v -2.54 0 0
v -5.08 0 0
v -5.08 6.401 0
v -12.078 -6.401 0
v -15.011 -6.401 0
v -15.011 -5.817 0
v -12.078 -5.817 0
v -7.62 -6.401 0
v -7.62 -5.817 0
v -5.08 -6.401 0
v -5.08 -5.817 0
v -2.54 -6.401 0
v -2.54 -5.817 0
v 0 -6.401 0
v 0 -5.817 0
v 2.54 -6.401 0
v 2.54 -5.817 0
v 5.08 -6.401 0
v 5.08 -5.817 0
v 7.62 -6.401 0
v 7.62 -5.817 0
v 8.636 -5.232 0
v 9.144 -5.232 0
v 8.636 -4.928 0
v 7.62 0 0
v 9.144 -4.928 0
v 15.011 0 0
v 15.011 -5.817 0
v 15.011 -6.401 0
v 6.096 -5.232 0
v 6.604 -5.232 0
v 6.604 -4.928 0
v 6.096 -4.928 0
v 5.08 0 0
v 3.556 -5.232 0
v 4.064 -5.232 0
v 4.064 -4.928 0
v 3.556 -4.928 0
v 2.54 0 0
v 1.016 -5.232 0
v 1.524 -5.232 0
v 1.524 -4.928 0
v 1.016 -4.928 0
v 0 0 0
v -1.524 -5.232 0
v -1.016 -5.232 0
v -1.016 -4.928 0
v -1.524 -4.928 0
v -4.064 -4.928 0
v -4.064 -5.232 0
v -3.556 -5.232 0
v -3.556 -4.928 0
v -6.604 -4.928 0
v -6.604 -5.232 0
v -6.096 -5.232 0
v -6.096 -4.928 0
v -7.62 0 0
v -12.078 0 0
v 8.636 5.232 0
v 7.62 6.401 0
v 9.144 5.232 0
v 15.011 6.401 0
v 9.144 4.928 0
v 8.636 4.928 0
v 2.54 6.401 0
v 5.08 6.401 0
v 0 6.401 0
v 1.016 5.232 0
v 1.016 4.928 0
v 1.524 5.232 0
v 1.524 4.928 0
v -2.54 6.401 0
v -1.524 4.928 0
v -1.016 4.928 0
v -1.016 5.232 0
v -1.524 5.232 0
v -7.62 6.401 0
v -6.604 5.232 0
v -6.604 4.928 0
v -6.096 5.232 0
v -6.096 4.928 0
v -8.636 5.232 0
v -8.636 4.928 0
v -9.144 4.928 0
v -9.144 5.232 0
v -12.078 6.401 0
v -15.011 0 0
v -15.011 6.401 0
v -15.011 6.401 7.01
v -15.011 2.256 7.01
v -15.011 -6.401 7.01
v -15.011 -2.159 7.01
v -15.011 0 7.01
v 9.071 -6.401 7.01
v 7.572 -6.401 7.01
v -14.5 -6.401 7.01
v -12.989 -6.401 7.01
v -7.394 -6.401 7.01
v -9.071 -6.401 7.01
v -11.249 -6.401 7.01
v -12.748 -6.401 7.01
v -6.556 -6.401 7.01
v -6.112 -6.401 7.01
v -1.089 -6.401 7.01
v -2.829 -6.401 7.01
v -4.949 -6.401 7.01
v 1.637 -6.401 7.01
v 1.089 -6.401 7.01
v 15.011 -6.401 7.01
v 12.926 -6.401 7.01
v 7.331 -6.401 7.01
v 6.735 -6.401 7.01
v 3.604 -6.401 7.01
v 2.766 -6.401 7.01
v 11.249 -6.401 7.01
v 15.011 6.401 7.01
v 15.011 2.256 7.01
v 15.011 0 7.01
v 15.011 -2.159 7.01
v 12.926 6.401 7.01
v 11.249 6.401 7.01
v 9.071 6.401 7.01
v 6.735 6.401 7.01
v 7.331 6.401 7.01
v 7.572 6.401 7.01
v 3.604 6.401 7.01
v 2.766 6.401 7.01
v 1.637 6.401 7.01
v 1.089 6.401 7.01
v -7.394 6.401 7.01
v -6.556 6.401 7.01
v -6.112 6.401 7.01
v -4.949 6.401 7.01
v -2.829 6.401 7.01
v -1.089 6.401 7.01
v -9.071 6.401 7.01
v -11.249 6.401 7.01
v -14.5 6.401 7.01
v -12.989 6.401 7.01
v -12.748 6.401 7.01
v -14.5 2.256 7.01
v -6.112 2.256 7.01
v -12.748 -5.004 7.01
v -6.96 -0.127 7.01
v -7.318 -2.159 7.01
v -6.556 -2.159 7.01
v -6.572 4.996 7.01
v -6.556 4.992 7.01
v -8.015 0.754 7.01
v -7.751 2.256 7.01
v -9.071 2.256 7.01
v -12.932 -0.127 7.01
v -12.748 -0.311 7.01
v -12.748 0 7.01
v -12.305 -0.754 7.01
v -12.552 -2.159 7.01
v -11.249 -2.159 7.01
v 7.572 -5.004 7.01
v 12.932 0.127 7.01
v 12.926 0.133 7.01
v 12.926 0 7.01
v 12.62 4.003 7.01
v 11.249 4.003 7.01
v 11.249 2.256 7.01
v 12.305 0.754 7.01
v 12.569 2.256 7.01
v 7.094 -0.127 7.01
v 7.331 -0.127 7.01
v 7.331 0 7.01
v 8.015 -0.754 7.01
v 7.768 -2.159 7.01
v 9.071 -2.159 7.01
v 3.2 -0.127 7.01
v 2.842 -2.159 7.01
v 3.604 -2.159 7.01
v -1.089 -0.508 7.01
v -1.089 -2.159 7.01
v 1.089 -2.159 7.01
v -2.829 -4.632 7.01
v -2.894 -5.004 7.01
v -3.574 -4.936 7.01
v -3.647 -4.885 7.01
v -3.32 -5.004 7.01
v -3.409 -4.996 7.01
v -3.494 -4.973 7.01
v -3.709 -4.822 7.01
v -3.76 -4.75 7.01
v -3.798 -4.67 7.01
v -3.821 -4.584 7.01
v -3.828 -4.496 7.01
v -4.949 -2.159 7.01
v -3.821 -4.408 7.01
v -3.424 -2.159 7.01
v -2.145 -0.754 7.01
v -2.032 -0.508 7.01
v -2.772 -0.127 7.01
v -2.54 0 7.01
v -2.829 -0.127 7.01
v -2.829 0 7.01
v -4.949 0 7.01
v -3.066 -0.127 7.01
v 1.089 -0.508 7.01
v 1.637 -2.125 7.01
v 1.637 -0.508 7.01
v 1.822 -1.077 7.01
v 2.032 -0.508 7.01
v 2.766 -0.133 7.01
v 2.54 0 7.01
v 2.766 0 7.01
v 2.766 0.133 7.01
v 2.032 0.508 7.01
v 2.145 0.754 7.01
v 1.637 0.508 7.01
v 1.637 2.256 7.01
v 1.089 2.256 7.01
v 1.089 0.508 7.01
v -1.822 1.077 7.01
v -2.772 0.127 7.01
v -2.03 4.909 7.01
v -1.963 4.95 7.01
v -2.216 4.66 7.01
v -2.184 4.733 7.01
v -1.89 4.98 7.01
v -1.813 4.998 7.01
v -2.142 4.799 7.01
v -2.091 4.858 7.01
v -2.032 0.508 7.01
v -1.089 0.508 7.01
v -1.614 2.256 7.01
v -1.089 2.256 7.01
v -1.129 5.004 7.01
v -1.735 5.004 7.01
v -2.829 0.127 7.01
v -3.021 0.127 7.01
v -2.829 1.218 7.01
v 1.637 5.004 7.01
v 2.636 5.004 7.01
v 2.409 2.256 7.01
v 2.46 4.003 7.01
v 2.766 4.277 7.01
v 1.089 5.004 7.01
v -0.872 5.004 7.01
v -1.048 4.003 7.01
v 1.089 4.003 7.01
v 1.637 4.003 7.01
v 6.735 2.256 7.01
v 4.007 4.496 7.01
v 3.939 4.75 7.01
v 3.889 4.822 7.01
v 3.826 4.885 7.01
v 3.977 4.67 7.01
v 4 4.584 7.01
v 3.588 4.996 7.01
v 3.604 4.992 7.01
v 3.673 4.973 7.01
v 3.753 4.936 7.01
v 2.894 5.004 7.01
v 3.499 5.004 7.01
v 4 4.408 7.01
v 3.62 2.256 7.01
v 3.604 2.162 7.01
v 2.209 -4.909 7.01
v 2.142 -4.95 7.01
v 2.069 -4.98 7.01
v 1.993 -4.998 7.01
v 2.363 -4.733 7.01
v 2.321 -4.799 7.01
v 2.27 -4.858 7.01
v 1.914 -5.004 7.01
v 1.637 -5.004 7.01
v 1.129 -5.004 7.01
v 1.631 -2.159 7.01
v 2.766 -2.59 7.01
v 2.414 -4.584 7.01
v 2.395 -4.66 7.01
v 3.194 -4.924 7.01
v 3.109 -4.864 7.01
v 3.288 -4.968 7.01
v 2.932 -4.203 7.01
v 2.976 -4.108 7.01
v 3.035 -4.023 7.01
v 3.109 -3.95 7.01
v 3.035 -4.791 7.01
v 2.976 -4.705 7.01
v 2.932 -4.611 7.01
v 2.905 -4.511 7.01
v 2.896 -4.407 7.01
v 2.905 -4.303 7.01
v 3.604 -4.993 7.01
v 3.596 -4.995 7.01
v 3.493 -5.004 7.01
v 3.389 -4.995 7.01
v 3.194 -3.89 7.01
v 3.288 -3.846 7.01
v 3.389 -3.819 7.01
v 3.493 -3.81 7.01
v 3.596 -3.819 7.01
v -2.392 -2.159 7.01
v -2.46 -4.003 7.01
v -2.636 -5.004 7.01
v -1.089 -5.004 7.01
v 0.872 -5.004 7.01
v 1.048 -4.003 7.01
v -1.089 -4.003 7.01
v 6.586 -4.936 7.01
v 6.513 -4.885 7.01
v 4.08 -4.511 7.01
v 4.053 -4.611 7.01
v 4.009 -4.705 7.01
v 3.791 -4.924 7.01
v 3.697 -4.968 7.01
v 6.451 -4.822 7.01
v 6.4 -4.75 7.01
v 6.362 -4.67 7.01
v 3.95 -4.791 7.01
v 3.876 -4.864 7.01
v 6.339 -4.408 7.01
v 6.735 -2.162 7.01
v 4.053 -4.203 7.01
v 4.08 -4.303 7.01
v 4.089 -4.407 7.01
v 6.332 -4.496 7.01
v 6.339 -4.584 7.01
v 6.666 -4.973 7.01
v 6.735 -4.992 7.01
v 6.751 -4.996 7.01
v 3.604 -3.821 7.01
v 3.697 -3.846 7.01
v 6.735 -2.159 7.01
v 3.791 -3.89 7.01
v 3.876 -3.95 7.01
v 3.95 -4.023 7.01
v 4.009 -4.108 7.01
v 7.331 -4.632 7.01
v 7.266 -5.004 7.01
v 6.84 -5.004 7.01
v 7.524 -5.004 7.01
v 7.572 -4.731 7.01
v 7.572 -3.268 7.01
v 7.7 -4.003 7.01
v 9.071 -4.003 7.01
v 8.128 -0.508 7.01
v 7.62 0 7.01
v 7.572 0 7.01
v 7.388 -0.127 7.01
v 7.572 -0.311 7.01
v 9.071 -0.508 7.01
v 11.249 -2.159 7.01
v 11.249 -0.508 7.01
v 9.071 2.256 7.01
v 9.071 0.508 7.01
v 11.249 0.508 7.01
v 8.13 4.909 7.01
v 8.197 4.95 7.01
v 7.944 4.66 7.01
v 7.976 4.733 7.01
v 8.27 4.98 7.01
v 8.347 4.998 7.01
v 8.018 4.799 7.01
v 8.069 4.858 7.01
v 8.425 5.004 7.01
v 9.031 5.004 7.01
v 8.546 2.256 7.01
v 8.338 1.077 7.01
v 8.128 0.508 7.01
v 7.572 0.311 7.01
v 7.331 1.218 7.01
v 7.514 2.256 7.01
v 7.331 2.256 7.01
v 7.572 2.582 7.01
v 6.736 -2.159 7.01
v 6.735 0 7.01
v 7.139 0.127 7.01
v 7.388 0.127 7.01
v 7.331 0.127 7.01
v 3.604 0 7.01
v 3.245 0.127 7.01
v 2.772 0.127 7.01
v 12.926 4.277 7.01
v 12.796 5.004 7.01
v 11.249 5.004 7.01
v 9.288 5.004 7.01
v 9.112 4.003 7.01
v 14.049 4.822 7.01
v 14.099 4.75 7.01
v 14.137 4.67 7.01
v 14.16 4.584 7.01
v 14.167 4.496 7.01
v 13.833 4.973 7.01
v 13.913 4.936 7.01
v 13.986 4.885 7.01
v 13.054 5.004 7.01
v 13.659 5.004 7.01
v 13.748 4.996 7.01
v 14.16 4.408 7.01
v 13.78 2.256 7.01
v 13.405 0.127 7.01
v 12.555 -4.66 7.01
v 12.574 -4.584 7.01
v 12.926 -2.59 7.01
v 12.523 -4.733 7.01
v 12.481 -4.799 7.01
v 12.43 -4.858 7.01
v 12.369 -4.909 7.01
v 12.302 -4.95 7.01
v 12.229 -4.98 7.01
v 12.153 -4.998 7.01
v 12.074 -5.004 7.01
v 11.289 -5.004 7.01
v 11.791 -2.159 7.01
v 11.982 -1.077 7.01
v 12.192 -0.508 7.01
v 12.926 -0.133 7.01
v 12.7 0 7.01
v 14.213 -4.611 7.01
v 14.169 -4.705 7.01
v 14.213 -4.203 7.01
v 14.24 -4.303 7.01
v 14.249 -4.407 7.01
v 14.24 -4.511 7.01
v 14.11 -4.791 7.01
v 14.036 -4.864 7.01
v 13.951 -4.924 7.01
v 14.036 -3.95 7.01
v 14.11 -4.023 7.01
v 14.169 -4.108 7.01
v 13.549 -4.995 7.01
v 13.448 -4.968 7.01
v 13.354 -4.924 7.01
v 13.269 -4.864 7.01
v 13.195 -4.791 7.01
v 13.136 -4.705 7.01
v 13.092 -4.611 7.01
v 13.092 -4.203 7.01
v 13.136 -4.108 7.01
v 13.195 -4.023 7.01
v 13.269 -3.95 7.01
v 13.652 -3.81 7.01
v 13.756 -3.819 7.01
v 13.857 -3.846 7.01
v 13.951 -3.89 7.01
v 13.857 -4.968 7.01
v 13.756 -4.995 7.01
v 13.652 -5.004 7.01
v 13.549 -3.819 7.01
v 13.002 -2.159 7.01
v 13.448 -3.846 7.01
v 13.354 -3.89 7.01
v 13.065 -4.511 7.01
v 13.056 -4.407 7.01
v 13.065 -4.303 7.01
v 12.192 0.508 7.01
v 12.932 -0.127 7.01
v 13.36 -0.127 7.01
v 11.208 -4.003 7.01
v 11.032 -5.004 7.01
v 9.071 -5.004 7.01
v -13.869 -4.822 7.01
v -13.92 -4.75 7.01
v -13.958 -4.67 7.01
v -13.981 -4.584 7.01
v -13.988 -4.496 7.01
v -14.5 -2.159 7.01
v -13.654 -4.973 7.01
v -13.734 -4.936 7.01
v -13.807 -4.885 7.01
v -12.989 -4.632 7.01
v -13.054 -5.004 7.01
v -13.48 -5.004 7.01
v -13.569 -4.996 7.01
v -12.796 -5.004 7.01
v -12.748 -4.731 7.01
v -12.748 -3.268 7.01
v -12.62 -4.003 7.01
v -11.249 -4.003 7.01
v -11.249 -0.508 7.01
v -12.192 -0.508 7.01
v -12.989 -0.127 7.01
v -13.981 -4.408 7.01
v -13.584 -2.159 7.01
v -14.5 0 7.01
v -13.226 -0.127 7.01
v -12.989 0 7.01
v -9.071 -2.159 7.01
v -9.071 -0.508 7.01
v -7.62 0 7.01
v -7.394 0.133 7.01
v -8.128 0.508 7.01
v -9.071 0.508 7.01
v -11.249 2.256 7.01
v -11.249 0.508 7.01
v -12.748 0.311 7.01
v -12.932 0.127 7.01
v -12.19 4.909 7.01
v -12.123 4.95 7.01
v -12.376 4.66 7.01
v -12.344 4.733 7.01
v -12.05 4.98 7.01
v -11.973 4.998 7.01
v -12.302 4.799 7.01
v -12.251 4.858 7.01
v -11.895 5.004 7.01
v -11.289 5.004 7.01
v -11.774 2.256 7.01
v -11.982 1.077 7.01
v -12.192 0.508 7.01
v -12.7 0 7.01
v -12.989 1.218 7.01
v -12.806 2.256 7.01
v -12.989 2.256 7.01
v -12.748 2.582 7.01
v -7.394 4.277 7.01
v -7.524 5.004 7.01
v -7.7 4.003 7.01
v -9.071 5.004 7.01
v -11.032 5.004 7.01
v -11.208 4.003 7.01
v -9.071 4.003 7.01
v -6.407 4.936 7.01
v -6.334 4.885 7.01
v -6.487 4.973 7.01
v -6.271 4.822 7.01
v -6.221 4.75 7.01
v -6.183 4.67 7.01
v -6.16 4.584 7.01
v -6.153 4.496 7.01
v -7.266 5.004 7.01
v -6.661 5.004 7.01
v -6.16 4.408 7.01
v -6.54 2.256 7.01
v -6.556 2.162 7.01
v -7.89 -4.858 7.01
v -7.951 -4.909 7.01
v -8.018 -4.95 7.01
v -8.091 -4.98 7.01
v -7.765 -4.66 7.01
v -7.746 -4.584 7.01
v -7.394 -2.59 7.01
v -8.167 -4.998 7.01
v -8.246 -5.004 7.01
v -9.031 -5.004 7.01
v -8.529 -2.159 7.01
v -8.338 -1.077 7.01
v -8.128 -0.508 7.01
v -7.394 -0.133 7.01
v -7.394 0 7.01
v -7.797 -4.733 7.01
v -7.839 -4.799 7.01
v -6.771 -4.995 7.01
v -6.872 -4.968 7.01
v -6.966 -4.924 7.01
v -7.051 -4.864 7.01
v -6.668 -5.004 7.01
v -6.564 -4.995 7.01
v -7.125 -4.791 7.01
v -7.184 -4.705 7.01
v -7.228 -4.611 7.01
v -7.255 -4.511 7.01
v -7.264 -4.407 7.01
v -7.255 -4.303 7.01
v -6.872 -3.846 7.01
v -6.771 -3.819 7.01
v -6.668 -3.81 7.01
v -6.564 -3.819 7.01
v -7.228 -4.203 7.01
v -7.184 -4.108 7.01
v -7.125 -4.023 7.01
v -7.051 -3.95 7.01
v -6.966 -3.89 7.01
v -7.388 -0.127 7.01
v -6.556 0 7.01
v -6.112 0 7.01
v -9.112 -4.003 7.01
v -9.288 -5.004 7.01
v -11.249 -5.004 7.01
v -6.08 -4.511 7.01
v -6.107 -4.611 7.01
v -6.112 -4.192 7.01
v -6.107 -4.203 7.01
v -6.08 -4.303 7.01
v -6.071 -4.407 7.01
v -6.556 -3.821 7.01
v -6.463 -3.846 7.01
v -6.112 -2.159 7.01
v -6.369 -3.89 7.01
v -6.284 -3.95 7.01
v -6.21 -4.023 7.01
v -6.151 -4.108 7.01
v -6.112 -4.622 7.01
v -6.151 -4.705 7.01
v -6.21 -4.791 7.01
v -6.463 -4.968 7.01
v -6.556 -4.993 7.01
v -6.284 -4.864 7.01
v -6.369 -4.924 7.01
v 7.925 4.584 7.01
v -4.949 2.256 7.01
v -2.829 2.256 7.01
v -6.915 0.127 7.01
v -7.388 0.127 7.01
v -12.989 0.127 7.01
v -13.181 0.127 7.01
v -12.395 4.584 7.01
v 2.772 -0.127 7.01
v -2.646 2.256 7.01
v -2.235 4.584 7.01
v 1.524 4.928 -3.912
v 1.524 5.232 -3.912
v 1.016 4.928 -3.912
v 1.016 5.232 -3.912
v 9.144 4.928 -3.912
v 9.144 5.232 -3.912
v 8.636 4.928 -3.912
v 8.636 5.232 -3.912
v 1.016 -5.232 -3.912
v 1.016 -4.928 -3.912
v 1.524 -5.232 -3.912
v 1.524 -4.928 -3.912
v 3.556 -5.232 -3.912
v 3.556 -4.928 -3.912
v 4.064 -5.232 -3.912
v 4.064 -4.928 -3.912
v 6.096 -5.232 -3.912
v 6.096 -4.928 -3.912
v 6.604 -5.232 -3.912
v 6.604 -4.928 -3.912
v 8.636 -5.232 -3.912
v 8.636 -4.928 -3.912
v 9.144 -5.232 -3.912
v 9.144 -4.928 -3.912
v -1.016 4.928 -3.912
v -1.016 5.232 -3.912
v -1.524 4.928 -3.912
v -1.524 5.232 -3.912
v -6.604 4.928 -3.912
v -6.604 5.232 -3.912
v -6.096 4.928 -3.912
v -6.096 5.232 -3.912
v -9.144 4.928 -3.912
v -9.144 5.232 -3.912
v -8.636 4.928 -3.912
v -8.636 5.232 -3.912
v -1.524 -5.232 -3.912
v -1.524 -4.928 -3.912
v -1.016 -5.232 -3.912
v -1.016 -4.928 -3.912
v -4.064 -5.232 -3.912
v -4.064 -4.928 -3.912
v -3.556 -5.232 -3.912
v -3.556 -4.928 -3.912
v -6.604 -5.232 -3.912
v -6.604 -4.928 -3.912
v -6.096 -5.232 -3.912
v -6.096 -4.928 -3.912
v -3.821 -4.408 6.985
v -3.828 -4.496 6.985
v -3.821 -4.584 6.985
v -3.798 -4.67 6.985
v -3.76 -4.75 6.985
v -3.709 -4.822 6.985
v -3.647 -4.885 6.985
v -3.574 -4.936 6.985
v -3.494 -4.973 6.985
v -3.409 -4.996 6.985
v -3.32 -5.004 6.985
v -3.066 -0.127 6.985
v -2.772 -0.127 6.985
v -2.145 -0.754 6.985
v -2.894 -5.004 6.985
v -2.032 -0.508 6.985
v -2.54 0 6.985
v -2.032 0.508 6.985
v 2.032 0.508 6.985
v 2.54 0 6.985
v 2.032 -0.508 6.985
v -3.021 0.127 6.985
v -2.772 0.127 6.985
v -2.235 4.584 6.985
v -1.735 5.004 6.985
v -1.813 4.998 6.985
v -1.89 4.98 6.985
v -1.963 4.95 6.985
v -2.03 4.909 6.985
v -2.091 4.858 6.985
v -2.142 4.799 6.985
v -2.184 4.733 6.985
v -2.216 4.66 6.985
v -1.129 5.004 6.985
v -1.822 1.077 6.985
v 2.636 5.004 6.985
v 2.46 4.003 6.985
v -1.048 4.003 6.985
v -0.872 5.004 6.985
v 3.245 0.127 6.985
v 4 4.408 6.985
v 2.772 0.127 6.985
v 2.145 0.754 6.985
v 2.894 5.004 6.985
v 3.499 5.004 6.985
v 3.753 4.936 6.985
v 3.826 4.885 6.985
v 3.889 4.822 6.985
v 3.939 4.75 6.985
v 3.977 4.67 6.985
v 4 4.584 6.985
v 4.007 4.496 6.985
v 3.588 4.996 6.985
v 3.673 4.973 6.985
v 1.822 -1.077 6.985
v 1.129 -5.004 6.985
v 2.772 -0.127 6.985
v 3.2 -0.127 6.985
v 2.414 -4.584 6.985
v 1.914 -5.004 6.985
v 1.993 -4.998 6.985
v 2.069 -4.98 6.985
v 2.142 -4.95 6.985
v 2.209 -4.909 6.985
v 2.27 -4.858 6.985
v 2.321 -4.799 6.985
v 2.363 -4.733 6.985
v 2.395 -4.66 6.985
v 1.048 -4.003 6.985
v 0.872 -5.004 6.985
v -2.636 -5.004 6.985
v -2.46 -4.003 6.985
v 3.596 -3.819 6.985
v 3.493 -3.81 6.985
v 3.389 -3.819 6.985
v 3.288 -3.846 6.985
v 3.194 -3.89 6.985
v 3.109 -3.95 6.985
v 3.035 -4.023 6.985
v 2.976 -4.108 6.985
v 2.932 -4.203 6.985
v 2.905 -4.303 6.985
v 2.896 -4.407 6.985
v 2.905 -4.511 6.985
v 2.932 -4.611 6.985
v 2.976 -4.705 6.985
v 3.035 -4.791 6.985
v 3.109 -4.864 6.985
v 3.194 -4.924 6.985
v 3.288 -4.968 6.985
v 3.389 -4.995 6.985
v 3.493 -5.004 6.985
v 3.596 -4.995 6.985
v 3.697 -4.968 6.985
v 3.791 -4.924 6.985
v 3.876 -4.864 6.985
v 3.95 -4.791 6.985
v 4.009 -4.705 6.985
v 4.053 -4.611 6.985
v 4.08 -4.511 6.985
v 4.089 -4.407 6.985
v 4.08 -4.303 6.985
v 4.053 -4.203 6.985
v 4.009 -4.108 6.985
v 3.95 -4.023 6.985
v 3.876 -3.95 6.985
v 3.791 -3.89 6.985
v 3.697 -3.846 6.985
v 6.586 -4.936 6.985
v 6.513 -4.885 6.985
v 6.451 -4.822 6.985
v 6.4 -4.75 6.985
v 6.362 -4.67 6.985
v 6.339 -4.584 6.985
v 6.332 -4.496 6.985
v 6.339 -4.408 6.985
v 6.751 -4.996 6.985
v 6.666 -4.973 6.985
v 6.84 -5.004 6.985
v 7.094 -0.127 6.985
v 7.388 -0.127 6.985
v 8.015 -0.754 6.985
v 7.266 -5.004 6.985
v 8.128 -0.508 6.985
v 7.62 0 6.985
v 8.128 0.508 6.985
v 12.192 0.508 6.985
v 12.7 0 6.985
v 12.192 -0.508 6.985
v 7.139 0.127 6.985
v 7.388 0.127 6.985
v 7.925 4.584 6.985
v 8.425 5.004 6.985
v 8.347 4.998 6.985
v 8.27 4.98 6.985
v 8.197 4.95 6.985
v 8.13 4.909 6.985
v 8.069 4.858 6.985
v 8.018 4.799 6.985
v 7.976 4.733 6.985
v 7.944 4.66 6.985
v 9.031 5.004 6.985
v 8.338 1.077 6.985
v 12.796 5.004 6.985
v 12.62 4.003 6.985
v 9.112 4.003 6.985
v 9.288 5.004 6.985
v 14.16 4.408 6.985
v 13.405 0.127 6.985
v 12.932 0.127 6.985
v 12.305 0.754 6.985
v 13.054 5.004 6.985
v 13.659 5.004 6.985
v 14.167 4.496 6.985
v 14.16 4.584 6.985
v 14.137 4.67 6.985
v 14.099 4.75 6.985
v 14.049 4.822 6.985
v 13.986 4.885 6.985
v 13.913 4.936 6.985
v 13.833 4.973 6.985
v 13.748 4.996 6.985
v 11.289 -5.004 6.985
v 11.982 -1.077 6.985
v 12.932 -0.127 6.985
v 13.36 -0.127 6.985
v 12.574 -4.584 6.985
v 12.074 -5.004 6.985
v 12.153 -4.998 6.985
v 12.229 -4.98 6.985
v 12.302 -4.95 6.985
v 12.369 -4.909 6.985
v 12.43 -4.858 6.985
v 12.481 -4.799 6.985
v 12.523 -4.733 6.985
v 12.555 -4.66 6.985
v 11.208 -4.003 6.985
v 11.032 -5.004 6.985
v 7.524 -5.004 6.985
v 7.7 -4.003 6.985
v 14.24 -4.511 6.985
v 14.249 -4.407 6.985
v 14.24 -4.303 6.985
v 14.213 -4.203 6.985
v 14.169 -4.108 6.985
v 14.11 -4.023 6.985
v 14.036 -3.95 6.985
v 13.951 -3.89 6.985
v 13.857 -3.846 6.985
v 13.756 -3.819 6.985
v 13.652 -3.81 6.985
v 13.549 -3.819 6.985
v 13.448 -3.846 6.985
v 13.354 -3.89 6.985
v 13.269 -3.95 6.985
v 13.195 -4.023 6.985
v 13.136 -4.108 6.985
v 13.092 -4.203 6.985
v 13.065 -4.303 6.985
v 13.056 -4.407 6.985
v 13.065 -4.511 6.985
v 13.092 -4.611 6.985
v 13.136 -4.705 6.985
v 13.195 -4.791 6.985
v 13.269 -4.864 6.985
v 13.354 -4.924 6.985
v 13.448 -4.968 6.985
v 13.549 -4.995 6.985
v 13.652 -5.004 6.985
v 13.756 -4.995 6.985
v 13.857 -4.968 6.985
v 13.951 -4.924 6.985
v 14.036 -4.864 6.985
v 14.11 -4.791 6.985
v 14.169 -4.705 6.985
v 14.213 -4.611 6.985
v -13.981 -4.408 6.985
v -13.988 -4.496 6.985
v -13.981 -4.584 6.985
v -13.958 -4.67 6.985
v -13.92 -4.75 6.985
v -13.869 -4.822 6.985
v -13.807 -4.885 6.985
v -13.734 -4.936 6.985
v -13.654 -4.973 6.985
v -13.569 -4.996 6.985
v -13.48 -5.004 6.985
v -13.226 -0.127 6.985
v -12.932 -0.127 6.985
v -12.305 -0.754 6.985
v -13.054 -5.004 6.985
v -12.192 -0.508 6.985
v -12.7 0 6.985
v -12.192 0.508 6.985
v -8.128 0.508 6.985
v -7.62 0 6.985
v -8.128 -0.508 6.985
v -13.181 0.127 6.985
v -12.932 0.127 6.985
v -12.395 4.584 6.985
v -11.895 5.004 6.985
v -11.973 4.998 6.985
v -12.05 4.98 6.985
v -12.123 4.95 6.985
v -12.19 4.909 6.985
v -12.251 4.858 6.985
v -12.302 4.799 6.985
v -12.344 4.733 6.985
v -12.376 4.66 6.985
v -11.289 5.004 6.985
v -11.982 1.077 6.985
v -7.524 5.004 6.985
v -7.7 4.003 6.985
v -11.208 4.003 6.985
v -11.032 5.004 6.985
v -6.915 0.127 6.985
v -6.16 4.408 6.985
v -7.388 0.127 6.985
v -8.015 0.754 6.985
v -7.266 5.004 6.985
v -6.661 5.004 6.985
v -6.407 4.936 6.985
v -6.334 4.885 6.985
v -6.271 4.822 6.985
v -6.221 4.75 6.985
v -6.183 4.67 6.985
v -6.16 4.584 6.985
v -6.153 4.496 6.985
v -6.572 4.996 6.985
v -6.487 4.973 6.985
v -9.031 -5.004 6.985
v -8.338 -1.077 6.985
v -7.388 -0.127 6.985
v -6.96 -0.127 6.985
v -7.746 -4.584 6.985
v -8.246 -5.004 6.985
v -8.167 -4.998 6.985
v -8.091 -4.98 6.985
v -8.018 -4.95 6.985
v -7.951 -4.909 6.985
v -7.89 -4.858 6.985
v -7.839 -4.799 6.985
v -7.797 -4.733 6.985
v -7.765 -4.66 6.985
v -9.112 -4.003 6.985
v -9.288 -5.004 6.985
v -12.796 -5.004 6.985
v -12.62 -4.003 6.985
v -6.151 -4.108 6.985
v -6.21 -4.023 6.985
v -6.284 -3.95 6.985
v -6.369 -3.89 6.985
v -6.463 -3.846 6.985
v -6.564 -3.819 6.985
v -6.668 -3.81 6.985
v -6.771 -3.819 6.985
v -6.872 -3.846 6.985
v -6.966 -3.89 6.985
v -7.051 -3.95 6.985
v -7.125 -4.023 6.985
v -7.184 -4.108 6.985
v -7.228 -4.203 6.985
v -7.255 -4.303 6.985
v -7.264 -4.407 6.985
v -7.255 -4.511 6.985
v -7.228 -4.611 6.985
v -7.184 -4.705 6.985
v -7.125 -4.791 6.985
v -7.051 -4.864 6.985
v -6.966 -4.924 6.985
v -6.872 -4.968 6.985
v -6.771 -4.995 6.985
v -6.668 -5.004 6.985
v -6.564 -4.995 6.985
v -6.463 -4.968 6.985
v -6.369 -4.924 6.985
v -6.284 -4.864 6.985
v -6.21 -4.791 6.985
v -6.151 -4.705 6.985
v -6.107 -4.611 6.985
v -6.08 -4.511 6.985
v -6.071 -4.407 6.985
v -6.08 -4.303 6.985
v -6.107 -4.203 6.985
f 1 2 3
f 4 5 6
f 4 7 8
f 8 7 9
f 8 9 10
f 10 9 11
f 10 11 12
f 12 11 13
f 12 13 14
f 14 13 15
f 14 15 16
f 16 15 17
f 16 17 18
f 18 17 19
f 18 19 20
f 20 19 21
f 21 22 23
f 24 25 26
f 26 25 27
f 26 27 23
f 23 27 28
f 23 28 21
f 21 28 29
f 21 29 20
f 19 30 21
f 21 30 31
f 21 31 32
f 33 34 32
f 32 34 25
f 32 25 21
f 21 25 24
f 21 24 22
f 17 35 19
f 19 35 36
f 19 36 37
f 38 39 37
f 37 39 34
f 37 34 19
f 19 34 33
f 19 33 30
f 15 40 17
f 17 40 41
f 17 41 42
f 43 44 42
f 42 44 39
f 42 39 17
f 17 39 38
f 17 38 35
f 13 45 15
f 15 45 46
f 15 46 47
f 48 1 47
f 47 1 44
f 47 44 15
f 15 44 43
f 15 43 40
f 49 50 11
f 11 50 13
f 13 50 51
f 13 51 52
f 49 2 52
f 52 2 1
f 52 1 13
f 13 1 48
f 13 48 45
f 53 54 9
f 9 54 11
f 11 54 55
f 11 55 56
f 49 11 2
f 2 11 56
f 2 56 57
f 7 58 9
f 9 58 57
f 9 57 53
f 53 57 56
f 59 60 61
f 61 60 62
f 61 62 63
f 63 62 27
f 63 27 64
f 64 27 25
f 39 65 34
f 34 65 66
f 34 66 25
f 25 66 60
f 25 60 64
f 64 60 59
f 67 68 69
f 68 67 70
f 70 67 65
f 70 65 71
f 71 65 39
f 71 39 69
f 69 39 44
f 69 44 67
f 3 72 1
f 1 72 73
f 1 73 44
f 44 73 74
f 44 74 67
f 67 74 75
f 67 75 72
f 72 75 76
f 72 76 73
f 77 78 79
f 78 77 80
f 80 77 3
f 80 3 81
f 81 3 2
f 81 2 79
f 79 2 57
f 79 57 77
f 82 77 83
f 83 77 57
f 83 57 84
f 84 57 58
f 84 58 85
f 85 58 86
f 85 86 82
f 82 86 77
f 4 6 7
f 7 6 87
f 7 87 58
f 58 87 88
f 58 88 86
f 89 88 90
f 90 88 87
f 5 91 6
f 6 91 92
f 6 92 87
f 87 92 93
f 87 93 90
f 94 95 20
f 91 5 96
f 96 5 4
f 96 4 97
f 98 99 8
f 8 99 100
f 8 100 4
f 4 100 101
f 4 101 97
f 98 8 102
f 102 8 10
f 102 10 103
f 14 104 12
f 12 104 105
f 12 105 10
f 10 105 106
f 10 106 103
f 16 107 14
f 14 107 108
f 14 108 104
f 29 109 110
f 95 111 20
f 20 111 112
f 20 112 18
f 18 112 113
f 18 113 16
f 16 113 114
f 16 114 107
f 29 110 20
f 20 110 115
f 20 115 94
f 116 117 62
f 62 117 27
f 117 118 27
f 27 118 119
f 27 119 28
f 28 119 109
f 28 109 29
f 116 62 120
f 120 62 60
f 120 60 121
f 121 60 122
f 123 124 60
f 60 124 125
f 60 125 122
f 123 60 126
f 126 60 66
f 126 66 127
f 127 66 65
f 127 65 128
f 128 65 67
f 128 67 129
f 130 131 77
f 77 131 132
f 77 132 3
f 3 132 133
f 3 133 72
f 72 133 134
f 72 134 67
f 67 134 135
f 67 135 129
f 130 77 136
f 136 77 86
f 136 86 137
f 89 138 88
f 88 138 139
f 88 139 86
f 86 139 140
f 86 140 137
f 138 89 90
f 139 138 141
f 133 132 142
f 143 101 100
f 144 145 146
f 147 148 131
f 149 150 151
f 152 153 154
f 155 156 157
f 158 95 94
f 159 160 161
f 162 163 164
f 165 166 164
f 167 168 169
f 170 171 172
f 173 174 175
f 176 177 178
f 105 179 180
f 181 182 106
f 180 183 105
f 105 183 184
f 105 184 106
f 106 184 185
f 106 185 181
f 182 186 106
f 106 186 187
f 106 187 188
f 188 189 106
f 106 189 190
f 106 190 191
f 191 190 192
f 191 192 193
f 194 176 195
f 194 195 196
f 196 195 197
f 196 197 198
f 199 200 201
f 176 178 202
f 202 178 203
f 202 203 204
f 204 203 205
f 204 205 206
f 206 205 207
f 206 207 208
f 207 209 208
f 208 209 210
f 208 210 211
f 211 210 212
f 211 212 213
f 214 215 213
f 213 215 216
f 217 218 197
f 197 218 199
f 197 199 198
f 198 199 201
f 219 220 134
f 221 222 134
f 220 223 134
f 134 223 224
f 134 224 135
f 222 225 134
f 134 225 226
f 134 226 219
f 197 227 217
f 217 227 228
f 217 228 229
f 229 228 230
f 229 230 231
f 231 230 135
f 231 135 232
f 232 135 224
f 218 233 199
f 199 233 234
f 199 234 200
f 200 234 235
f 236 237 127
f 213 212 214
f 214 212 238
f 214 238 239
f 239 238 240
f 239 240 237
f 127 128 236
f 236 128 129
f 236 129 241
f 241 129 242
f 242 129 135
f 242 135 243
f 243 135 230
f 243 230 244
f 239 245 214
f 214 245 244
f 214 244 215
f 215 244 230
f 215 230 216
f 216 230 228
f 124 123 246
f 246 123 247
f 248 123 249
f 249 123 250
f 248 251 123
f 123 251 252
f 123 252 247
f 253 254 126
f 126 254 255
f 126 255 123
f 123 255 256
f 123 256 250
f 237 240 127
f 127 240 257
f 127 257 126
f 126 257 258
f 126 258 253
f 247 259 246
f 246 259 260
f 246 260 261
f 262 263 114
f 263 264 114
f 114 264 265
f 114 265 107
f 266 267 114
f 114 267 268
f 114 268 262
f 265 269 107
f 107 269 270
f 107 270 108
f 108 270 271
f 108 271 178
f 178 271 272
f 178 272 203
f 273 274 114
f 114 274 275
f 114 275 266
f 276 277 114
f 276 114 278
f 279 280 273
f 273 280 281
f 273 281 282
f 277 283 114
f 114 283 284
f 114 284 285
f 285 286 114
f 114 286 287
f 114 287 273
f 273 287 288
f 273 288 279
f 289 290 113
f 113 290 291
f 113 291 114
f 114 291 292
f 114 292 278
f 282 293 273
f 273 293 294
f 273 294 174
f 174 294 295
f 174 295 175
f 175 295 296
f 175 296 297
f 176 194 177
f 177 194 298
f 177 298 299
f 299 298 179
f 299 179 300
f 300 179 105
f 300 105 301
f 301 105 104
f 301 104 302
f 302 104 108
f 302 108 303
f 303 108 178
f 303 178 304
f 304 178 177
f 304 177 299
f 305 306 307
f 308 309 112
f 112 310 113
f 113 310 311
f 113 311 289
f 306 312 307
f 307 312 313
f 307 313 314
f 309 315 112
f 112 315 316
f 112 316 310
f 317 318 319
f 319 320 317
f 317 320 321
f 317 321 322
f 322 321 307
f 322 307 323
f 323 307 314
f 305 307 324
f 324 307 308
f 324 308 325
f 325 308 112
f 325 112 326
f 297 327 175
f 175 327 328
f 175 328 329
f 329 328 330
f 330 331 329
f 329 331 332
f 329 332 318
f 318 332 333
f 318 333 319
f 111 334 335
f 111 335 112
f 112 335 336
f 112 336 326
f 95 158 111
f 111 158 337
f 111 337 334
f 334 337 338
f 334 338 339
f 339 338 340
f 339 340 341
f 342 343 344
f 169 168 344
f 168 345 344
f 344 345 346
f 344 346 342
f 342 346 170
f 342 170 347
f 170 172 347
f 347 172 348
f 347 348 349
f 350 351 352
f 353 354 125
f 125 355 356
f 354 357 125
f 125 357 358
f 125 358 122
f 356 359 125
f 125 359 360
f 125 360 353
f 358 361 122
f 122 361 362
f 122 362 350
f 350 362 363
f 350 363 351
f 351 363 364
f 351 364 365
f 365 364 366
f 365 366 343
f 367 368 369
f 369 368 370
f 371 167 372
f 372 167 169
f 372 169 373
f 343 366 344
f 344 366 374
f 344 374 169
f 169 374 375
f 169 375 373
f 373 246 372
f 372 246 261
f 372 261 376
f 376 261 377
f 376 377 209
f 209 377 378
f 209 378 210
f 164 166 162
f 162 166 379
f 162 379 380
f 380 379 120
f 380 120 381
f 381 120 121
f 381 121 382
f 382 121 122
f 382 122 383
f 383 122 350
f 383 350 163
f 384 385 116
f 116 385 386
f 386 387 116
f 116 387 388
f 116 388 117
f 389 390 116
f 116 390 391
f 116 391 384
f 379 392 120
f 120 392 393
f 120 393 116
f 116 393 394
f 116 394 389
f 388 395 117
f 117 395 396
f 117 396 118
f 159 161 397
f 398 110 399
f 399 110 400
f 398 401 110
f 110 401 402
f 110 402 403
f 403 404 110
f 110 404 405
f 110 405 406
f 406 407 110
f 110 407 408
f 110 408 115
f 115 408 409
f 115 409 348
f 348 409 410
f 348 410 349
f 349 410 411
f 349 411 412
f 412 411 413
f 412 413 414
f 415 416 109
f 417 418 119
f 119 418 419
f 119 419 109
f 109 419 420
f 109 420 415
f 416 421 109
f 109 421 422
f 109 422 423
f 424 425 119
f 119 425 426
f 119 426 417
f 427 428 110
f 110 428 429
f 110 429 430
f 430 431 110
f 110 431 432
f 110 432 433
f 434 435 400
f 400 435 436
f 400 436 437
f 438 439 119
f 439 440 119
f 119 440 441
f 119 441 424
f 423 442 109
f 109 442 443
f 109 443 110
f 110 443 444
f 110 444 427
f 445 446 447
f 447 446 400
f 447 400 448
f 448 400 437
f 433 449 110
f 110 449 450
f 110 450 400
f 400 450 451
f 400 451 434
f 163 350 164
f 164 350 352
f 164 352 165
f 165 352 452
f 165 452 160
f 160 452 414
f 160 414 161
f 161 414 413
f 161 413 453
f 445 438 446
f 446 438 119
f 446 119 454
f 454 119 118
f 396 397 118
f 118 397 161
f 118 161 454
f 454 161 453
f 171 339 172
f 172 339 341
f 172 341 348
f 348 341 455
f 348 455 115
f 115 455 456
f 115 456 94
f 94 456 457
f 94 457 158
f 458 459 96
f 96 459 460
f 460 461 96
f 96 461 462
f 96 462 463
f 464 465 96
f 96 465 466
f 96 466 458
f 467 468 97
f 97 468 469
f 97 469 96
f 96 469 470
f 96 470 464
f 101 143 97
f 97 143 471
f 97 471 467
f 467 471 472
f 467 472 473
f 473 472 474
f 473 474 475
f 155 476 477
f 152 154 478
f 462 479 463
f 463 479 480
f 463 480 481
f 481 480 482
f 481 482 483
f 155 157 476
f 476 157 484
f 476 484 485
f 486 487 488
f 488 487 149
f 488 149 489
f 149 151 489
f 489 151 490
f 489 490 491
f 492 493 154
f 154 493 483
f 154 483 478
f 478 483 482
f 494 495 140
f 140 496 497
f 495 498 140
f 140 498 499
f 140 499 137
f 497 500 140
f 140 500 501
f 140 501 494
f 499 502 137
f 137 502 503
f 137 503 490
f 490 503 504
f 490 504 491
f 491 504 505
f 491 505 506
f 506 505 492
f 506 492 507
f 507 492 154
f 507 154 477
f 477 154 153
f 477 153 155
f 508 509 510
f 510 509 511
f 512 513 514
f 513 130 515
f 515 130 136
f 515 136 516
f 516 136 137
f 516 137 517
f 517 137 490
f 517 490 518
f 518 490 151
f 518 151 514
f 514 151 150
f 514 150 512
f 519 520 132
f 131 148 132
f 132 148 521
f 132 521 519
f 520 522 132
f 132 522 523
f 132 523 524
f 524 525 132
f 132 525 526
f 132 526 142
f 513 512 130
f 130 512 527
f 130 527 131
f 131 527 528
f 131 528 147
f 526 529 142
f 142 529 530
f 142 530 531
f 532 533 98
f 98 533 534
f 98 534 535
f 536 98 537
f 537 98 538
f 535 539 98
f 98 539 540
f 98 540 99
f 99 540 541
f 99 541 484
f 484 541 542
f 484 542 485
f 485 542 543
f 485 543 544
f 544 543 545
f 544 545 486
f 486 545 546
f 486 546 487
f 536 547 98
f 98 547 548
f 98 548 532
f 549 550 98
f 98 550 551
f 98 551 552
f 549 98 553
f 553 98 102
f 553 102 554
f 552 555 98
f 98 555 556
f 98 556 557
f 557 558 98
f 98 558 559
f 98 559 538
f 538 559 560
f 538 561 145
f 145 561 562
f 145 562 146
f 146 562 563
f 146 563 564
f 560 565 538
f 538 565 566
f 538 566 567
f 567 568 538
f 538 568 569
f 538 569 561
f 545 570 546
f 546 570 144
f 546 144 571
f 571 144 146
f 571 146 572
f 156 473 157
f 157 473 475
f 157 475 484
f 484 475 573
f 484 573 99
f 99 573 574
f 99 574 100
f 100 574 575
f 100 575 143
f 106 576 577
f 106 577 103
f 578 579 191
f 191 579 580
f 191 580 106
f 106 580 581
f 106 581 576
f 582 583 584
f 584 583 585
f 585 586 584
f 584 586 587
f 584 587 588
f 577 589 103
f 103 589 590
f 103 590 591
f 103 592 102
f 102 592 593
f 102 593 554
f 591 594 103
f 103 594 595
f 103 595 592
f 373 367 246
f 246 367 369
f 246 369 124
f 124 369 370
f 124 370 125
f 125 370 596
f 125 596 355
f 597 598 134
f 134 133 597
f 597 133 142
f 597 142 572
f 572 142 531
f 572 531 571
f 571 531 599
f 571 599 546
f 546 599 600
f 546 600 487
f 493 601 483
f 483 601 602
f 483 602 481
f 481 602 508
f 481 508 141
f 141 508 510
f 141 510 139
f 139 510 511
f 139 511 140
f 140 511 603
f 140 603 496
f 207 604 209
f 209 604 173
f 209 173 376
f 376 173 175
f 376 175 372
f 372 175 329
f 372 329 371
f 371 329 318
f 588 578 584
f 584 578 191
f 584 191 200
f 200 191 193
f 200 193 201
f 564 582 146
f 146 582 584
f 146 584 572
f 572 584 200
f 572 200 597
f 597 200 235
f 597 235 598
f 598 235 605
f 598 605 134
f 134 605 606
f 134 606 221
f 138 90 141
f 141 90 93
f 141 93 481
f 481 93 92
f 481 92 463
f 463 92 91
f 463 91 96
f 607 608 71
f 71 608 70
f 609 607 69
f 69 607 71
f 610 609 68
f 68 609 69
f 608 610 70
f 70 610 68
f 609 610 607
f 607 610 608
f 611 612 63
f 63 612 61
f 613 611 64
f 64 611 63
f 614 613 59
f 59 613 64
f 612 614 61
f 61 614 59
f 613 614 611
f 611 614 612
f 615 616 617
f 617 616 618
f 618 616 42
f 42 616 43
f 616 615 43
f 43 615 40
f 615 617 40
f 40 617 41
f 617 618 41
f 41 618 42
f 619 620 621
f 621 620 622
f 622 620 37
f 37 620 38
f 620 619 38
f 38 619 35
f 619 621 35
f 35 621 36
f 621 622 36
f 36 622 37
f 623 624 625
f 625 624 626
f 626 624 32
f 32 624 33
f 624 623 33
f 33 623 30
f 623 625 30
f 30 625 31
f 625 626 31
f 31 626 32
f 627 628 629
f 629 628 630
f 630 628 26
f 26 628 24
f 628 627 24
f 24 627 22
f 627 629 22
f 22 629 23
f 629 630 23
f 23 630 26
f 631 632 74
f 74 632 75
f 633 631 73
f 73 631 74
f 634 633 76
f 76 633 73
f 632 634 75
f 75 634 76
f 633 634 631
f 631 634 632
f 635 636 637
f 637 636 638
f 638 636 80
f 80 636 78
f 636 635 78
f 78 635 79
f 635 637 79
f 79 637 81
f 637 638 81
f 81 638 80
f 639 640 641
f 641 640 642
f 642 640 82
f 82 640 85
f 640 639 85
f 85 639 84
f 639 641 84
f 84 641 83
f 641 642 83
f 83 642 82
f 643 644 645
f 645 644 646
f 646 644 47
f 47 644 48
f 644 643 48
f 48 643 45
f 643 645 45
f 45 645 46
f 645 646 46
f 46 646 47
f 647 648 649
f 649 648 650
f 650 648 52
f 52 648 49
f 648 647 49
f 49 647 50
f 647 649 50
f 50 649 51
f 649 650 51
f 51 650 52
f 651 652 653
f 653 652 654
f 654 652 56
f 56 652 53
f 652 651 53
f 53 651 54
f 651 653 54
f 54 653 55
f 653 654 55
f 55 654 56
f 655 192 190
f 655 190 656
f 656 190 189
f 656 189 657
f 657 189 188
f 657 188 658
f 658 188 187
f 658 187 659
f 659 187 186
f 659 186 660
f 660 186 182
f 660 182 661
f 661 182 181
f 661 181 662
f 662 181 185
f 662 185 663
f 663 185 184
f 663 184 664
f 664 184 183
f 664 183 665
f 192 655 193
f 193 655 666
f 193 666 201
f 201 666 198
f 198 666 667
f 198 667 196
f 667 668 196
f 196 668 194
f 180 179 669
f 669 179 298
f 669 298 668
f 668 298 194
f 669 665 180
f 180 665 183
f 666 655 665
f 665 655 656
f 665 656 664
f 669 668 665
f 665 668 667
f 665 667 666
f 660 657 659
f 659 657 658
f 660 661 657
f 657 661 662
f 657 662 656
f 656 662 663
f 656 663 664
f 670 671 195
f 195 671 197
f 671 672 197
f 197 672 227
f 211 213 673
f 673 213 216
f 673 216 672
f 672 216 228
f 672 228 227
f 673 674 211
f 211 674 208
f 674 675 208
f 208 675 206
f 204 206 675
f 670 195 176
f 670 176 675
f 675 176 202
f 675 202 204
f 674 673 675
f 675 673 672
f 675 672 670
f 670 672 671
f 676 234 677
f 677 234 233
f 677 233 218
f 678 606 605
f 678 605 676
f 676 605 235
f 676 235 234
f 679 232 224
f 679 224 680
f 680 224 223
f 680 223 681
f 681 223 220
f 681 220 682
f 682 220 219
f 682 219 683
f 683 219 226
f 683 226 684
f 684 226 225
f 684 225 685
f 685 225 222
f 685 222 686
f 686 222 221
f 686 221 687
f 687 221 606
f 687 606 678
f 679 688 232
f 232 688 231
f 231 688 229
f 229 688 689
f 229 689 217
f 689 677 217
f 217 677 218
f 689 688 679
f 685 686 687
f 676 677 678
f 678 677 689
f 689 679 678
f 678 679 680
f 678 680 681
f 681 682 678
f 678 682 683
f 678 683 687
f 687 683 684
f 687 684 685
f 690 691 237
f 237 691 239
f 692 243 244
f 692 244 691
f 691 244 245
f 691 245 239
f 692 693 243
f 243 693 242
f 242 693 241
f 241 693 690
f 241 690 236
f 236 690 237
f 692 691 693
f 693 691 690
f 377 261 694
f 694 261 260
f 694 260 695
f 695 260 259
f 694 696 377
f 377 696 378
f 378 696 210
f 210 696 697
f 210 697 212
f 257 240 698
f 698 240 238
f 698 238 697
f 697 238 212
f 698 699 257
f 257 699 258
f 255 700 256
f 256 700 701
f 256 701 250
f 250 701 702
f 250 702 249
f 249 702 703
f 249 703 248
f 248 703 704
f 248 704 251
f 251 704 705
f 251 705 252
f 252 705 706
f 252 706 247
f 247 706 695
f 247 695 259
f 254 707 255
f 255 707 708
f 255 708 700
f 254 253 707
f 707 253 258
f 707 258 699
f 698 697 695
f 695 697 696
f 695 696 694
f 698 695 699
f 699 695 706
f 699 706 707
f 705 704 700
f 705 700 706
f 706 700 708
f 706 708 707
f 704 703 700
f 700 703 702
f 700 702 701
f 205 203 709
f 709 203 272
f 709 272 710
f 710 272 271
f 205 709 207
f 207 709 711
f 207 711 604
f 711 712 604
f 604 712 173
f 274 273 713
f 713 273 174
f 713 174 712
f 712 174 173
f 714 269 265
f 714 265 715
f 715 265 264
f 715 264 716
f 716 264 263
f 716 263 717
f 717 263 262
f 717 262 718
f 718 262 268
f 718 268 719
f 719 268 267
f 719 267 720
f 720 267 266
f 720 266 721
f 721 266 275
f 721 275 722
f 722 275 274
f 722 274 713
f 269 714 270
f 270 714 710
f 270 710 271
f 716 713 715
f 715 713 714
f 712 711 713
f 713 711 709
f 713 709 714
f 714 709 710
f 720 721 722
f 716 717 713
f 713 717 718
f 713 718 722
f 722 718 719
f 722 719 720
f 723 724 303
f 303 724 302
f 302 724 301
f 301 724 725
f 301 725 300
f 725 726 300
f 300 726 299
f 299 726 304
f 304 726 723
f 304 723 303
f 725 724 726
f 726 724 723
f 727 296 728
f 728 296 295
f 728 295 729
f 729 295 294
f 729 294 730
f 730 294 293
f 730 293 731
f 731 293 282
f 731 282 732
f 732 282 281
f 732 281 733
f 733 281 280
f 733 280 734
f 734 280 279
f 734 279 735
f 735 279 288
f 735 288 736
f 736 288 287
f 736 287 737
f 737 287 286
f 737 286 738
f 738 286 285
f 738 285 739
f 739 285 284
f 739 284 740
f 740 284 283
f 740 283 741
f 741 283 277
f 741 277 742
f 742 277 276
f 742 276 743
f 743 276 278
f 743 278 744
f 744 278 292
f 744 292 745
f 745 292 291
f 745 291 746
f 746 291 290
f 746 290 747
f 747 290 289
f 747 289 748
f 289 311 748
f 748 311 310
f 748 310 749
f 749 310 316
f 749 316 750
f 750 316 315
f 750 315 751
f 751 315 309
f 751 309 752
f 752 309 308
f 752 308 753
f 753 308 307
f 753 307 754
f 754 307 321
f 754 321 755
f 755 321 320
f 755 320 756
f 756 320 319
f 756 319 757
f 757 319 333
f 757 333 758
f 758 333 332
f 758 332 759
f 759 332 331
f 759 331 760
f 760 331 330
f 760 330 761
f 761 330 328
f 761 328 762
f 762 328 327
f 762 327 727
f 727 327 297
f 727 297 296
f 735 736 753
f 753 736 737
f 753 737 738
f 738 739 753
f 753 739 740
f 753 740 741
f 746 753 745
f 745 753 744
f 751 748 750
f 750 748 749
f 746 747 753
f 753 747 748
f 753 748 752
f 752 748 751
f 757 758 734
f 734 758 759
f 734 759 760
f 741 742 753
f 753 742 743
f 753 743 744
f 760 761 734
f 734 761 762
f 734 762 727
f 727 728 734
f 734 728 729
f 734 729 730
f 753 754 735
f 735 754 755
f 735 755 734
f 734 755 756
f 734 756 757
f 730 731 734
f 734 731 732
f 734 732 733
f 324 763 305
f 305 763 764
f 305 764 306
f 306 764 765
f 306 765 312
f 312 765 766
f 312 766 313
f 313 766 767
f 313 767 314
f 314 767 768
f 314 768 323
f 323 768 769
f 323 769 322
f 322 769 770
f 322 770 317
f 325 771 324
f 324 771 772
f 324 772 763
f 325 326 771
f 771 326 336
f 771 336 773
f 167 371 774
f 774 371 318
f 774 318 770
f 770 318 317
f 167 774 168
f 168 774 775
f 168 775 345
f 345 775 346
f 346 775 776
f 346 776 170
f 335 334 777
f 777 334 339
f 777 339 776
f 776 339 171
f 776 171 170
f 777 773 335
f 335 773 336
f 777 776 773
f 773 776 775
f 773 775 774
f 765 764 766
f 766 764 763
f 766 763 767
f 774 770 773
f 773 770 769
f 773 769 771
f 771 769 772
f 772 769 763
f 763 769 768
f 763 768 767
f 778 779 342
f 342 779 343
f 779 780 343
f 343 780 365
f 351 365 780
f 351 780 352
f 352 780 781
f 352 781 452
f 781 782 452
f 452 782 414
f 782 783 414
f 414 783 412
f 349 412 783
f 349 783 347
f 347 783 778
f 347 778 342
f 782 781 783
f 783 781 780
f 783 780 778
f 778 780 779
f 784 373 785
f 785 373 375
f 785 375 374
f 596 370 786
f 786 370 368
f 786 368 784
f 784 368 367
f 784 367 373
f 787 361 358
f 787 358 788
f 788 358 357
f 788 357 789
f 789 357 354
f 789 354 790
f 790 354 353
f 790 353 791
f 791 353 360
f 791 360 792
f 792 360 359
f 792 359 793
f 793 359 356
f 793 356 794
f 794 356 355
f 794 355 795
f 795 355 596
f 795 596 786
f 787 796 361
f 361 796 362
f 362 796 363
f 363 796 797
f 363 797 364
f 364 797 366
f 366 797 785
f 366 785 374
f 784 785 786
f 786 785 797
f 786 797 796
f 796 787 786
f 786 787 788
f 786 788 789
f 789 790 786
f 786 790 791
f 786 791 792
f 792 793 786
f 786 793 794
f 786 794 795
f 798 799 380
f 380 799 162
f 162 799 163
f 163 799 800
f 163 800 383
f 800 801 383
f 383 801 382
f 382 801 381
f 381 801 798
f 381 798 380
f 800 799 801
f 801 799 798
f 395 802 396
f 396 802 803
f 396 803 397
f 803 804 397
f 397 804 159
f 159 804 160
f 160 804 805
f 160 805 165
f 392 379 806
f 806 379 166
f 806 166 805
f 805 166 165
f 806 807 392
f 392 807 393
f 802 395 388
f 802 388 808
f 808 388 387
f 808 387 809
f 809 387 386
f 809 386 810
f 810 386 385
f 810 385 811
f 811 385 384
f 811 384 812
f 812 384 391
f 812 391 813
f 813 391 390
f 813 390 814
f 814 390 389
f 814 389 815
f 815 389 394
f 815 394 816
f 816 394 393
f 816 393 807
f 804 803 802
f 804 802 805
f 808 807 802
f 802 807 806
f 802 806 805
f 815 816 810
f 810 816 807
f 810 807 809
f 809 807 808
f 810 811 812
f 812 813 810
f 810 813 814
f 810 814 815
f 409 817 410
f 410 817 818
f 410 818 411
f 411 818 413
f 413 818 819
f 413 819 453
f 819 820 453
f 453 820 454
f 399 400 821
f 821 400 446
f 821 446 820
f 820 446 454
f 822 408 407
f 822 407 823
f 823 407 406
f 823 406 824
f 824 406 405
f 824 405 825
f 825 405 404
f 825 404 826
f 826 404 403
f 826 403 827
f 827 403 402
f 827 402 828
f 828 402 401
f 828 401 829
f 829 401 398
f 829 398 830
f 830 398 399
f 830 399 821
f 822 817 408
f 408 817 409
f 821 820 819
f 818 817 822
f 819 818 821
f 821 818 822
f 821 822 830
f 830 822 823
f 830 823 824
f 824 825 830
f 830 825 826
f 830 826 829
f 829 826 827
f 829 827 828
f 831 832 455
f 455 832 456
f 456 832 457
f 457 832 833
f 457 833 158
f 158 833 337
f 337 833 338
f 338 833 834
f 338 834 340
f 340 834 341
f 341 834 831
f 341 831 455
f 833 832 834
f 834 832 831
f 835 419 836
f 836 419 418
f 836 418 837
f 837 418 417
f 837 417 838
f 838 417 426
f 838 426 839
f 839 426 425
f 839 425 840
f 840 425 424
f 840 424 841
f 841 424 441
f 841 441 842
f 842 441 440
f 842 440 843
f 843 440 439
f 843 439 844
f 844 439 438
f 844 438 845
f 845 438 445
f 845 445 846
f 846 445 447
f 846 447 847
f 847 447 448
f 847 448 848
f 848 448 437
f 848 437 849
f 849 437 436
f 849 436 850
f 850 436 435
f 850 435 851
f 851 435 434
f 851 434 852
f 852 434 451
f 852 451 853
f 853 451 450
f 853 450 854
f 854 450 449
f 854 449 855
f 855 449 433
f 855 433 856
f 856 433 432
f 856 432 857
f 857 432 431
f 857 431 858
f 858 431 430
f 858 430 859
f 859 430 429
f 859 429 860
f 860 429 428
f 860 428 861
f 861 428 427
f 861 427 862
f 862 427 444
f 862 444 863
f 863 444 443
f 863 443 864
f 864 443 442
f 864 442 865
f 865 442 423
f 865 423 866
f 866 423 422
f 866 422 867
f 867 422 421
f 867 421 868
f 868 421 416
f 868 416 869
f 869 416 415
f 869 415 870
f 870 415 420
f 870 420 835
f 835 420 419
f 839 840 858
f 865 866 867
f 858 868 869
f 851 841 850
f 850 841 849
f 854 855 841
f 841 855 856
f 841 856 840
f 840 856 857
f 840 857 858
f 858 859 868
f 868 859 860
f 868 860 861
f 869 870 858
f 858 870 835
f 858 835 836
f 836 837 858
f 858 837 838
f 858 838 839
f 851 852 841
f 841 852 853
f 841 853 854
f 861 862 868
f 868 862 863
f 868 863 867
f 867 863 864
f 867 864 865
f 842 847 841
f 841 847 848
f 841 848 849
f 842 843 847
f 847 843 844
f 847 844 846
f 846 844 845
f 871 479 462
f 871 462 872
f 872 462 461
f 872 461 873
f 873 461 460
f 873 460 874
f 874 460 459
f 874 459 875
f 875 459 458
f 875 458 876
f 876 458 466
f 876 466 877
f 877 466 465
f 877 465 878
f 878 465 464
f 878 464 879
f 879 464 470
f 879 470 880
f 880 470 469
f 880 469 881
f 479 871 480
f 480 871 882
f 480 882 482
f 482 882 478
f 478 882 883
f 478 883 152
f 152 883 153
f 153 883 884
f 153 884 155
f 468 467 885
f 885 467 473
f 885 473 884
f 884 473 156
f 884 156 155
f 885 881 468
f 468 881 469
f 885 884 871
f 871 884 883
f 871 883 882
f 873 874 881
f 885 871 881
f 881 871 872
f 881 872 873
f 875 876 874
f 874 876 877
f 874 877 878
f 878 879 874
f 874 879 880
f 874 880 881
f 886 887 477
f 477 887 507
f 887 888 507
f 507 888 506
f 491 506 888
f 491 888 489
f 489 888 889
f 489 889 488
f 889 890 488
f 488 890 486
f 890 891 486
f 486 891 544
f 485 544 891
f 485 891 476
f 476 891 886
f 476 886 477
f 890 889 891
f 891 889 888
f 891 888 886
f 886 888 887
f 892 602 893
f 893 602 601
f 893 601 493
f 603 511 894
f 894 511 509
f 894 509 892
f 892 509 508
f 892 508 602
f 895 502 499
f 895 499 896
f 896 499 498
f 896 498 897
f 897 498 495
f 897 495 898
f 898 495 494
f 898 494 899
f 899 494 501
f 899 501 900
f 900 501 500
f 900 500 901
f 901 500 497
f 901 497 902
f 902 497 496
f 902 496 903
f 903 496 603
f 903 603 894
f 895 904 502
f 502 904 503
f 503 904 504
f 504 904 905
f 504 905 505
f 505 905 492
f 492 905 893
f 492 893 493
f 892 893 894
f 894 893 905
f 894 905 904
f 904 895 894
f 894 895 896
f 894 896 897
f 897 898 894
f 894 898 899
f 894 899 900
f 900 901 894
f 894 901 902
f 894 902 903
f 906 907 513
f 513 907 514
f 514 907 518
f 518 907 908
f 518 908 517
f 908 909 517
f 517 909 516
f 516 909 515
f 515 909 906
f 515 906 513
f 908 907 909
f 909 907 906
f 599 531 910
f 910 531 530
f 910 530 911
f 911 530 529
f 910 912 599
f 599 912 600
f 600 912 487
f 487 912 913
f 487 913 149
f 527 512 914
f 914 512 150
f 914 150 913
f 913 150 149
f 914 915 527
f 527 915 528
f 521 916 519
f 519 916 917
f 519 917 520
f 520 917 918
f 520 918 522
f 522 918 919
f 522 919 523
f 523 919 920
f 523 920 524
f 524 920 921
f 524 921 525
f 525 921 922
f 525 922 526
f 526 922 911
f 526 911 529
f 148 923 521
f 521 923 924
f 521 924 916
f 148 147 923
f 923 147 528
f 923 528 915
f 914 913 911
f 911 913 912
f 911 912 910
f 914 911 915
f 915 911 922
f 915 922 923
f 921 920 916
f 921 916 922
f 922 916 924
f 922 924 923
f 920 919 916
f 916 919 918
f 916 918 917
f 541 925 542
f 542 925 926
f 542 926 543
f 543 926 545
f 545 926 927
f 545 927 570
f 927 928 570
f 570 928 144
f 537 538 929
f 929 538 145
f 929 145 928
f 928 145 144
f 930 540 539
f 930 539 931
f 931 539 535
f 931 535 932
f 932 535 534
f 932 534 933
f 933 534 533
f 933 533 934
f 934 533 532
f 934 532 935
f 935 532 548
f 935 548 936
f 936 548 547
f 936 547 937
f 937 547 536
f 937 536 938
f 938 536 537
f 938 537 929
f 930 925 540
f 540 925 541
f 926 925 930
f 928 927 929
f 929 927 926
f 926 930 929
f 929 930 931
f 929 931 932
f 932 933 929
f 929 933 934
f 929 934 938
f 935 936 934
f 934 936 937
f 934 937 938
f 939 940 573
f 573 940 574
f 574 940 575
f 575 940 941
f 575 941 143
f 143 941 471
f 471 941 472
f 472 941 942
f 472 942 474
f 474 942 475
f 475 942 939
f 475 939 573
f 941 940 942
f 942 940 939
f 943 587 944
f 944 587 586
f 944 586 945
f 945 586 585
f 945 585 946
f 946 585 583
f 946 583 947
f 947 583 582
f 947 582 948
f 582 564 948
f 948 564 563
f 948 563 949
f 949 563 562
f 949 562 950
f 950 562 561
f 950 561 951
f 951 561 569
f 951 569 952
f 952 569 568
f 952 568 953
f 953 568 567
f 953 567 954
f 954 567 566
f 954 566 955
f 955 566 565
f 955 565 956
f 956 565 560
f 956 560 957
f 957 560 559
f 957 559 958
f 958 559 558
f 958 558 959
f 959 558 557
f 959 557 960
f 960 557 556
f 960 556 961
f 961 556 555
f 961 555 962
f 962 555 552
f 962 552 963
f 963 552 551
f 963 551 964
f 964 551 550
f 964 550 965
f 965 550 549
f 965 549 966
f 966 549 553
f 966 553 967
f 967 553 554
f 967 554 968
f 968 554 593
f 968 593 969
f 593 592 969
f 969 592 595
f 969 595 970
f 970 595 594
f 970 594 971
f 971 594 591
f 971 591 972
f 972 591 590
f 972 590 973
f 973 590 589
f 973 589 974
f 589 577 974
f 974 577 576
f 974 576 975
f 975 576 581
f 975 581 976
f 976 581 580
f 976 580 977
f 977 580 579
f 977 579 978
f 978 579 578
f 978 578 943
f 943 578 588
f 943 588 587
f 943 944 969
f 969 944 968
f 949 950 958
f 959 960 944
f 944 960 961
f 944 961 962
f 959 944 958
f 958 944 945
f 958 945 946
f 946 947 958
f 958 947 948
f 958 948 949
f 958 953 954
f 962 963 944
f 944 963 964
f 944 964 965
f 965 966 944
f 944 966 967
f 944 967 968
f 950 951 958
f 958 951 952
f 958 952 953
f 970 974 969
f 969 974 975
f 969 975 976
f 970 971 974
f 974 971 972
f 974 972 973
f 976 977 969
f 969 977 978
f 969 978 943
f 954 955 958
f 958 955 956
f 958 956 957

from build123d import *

# Parameters (mm, degrees)
SKETCH1_W            = 30.0228
SKETCH1_H            = 12.8016
BOSS_EXTRUDE1_DEPTH  = 7.0104
SKETCH2_W            = 0.508
SKETCH2_H            = 0.3048
BOSS_EXTRUDE2_DEPTH  = 3.9116
LPATTERN1_COUNT      = 4
LPATTERN1_PITCH      = 2.54
LPATTERN1_COUNT_DIR2 = 2
LPATTERN1_PITCH_DIR2 = 10.16
LPATTERN2_COUNT      = 5
LPATTERN2_PITCH      = 2.54
LPATTERN2_COUNT_DIR2 = 2
LPATTERN2_PITCH_DIR2 = 10.16
SKETCH3_R            = 0.5969
CUT_EXTRUDE1_DEPTH   = 0.0254
LPATTERN3_COUNT      = 2
LPATTERN3_PITCH      = 10.16
LPATTERN4_COUNT      = 2
LPATTERN4_PITCH      = 10.16


with BuildPart() as part:
    # Sketch1 → Boss-Extrude1 (new body)
    with BuildSketch(Plane.XY):
        Rectangle(SKETCH1_W, SKETCH1_H)
    extrude(amount=BOSS_EXTRUDE1_DEPTH)

    # Sketch2 → Boss-Extrude2 (add)
    with BuildSketch(Plane(origin=(0, 0, 0), x_dir=(-1, 0, 0), z_dir=(0, 0, -1))):
        with Locations((-1.27, 5.08)):
            Rectangle(SKETCH2_W, SKETCH2_H)
    boss_extrude2 = extrude(amount=BOSS_EXTRUDE2_DEPTH)

    # LPattern1: Boss-Extrude2 4 × 2, 2 skipped
    with Locations(*[(i * LPATTERN1_PITCH, -j * LPATTERN1_PITCH_DIR2, 0) for i in range(LPATTERN1_COUNT) for j in range(LPATTERN1_COUNT_DIR2) if (i, j) not in ((0, 0), (1, 0), (2, 0))]):
        add(boss_extrude2)

    # LPattern2: Boss-Extrude2 5 × 2, 3 skipped
    with Locations(*[(-i * LPATTERN2_PITCH, -j * LPATTERN2_PITCH_DIR2, 0) for i in range(LPATTERN2_COUNT) for j in range(LPATTERN2_COUNT_DIR2) if (i, j) not in ((0, 0), (0, 1), (2, 0), (4, 1))]):
        add(boss_extrude2)

    # Sketch3 → Cut-Extrude1 (cut)
    with BuildSketch(Plane.XY.offset(7.0104)):
        with Locations((3.4925, -4.4069)):
            Circle(SKETCH3_R)
        Polygon((-2.54, 0), (-2.032, 0.508), (2.032, 0.508), (2.54, 0), (2.032, -0.508), (-2.032, -0.508), align=None)
        with BuildLine():
            Line((-2.772210245, 0.127), (-1.821783863, 1.077426382))
            Line((-1.821783863, 1.077426382), (-1.129458257, 5.0038))
            Line((-1.129458257, 5.0038), (-1.734869082, 5.0038))
            ThreePointArc((-1.734869082, 5.0038), (-2.061405188, 4.884950577), (-2.235151421, 4.584013274))
            Line((-2.235151421, 4.584013274), (-3.021043115, 0.127))
            Line((-3.021043115, 0.127), (-2.772210245, 0.127))
        make_face()
        Polygon((0.882304946, 5.0038), (-0.871539898, 5.0038), (-1.047966446, 4.003235323), (0.705878398, 4.003235323), (2.459723242, 4.003235323), (2.63614979, 5.0038), align=None)
        with BuildLine():
            Line((3.24497838, 0.127), (2.772210245, 0.127))
            Line((2.772210245, 0.127), (2.14478817, 0.754422075))
            Line((2.14478817, 0.754422075), (2.89406815, 5.0038))
            Line((2.89406815, 5.0038), (3.499478975, 5.0038))
            ThreePointArc((3.499478975, 5.0038), (3.888629552, 4.822336106), (3.999761313, 4.407586726))
            Line((3.999761313, 4.407586726), (3.24497838, 0.127))
        make_face()
        with BuildLine():
            Line((1.914017295, -5.0038), (1.129458257, -5.0038))
            Line((1.129458257, -5.0038), (1.821783863, -1.077426382))
            Line((1.821783863, -1.077426382), (2.772210245, -0.127))
            Line((2.772210245, -0.127), (3.200191327, -0.127))
            Line((3.200191327, -0.127), (2.414299633, -4.584013274))
            ThreePointArc((2.414299633, -4.584013274), (2.240553401, -4.884950577), (1.914017295, -5.0038))
        make_face()
        with BuildLine():
            Line((-3.065830168, -0.127), (-2.772210245, -0.127))
            Line((-2.772210245, -0.127), (-2.14478817, -0.754422075))
            Line((-2.14478817, -0.754422075), (-2.89406815, -5.0038))
            Line((-2.89406815, -5.0038), (-3.320330762, -5.0038))
            ThreePointArc((-3.320330762, -5.0038), (-3.709481339, -4.822336106), (-3.820613101, -4.407586726))
            Line((-3.820613101, -4.407586726), (-3.065830168, -0.127))
        make_face()
        Polygon((-0.705878398, -4.003235323), (-2.459723242, -4.003235323), (-2.63614979, -5.0038), (-0.882304946, -5.0038), (0.871539898, -5.0038), (1.047966446, -4.003235323), align=None)
    cut_extrude1 = extrude(amount=-CUT_EXTRUDE1_DEPTH, mode=Mode.SUBTRACT)

    # LPattern3: Cut-Extrude1 ×2
    with Locations(*[(i * LPATTERN3_PITCH, 0, 0) for i in range(1, LPATTERN3_COUNT)]):
        add(cut_extrude1, mode=Mode.SUBTRACT)

    # LPattern4: Cut-Extrude1 ×2
    with Locations(*[(-i * LPATTERN4_PITCH, 0, 0) for i in range(1, LPATTERN4_COUNT)]):
        add(cut_extrude1, mode=Mode.SUBTRACT)


solid = part.part
